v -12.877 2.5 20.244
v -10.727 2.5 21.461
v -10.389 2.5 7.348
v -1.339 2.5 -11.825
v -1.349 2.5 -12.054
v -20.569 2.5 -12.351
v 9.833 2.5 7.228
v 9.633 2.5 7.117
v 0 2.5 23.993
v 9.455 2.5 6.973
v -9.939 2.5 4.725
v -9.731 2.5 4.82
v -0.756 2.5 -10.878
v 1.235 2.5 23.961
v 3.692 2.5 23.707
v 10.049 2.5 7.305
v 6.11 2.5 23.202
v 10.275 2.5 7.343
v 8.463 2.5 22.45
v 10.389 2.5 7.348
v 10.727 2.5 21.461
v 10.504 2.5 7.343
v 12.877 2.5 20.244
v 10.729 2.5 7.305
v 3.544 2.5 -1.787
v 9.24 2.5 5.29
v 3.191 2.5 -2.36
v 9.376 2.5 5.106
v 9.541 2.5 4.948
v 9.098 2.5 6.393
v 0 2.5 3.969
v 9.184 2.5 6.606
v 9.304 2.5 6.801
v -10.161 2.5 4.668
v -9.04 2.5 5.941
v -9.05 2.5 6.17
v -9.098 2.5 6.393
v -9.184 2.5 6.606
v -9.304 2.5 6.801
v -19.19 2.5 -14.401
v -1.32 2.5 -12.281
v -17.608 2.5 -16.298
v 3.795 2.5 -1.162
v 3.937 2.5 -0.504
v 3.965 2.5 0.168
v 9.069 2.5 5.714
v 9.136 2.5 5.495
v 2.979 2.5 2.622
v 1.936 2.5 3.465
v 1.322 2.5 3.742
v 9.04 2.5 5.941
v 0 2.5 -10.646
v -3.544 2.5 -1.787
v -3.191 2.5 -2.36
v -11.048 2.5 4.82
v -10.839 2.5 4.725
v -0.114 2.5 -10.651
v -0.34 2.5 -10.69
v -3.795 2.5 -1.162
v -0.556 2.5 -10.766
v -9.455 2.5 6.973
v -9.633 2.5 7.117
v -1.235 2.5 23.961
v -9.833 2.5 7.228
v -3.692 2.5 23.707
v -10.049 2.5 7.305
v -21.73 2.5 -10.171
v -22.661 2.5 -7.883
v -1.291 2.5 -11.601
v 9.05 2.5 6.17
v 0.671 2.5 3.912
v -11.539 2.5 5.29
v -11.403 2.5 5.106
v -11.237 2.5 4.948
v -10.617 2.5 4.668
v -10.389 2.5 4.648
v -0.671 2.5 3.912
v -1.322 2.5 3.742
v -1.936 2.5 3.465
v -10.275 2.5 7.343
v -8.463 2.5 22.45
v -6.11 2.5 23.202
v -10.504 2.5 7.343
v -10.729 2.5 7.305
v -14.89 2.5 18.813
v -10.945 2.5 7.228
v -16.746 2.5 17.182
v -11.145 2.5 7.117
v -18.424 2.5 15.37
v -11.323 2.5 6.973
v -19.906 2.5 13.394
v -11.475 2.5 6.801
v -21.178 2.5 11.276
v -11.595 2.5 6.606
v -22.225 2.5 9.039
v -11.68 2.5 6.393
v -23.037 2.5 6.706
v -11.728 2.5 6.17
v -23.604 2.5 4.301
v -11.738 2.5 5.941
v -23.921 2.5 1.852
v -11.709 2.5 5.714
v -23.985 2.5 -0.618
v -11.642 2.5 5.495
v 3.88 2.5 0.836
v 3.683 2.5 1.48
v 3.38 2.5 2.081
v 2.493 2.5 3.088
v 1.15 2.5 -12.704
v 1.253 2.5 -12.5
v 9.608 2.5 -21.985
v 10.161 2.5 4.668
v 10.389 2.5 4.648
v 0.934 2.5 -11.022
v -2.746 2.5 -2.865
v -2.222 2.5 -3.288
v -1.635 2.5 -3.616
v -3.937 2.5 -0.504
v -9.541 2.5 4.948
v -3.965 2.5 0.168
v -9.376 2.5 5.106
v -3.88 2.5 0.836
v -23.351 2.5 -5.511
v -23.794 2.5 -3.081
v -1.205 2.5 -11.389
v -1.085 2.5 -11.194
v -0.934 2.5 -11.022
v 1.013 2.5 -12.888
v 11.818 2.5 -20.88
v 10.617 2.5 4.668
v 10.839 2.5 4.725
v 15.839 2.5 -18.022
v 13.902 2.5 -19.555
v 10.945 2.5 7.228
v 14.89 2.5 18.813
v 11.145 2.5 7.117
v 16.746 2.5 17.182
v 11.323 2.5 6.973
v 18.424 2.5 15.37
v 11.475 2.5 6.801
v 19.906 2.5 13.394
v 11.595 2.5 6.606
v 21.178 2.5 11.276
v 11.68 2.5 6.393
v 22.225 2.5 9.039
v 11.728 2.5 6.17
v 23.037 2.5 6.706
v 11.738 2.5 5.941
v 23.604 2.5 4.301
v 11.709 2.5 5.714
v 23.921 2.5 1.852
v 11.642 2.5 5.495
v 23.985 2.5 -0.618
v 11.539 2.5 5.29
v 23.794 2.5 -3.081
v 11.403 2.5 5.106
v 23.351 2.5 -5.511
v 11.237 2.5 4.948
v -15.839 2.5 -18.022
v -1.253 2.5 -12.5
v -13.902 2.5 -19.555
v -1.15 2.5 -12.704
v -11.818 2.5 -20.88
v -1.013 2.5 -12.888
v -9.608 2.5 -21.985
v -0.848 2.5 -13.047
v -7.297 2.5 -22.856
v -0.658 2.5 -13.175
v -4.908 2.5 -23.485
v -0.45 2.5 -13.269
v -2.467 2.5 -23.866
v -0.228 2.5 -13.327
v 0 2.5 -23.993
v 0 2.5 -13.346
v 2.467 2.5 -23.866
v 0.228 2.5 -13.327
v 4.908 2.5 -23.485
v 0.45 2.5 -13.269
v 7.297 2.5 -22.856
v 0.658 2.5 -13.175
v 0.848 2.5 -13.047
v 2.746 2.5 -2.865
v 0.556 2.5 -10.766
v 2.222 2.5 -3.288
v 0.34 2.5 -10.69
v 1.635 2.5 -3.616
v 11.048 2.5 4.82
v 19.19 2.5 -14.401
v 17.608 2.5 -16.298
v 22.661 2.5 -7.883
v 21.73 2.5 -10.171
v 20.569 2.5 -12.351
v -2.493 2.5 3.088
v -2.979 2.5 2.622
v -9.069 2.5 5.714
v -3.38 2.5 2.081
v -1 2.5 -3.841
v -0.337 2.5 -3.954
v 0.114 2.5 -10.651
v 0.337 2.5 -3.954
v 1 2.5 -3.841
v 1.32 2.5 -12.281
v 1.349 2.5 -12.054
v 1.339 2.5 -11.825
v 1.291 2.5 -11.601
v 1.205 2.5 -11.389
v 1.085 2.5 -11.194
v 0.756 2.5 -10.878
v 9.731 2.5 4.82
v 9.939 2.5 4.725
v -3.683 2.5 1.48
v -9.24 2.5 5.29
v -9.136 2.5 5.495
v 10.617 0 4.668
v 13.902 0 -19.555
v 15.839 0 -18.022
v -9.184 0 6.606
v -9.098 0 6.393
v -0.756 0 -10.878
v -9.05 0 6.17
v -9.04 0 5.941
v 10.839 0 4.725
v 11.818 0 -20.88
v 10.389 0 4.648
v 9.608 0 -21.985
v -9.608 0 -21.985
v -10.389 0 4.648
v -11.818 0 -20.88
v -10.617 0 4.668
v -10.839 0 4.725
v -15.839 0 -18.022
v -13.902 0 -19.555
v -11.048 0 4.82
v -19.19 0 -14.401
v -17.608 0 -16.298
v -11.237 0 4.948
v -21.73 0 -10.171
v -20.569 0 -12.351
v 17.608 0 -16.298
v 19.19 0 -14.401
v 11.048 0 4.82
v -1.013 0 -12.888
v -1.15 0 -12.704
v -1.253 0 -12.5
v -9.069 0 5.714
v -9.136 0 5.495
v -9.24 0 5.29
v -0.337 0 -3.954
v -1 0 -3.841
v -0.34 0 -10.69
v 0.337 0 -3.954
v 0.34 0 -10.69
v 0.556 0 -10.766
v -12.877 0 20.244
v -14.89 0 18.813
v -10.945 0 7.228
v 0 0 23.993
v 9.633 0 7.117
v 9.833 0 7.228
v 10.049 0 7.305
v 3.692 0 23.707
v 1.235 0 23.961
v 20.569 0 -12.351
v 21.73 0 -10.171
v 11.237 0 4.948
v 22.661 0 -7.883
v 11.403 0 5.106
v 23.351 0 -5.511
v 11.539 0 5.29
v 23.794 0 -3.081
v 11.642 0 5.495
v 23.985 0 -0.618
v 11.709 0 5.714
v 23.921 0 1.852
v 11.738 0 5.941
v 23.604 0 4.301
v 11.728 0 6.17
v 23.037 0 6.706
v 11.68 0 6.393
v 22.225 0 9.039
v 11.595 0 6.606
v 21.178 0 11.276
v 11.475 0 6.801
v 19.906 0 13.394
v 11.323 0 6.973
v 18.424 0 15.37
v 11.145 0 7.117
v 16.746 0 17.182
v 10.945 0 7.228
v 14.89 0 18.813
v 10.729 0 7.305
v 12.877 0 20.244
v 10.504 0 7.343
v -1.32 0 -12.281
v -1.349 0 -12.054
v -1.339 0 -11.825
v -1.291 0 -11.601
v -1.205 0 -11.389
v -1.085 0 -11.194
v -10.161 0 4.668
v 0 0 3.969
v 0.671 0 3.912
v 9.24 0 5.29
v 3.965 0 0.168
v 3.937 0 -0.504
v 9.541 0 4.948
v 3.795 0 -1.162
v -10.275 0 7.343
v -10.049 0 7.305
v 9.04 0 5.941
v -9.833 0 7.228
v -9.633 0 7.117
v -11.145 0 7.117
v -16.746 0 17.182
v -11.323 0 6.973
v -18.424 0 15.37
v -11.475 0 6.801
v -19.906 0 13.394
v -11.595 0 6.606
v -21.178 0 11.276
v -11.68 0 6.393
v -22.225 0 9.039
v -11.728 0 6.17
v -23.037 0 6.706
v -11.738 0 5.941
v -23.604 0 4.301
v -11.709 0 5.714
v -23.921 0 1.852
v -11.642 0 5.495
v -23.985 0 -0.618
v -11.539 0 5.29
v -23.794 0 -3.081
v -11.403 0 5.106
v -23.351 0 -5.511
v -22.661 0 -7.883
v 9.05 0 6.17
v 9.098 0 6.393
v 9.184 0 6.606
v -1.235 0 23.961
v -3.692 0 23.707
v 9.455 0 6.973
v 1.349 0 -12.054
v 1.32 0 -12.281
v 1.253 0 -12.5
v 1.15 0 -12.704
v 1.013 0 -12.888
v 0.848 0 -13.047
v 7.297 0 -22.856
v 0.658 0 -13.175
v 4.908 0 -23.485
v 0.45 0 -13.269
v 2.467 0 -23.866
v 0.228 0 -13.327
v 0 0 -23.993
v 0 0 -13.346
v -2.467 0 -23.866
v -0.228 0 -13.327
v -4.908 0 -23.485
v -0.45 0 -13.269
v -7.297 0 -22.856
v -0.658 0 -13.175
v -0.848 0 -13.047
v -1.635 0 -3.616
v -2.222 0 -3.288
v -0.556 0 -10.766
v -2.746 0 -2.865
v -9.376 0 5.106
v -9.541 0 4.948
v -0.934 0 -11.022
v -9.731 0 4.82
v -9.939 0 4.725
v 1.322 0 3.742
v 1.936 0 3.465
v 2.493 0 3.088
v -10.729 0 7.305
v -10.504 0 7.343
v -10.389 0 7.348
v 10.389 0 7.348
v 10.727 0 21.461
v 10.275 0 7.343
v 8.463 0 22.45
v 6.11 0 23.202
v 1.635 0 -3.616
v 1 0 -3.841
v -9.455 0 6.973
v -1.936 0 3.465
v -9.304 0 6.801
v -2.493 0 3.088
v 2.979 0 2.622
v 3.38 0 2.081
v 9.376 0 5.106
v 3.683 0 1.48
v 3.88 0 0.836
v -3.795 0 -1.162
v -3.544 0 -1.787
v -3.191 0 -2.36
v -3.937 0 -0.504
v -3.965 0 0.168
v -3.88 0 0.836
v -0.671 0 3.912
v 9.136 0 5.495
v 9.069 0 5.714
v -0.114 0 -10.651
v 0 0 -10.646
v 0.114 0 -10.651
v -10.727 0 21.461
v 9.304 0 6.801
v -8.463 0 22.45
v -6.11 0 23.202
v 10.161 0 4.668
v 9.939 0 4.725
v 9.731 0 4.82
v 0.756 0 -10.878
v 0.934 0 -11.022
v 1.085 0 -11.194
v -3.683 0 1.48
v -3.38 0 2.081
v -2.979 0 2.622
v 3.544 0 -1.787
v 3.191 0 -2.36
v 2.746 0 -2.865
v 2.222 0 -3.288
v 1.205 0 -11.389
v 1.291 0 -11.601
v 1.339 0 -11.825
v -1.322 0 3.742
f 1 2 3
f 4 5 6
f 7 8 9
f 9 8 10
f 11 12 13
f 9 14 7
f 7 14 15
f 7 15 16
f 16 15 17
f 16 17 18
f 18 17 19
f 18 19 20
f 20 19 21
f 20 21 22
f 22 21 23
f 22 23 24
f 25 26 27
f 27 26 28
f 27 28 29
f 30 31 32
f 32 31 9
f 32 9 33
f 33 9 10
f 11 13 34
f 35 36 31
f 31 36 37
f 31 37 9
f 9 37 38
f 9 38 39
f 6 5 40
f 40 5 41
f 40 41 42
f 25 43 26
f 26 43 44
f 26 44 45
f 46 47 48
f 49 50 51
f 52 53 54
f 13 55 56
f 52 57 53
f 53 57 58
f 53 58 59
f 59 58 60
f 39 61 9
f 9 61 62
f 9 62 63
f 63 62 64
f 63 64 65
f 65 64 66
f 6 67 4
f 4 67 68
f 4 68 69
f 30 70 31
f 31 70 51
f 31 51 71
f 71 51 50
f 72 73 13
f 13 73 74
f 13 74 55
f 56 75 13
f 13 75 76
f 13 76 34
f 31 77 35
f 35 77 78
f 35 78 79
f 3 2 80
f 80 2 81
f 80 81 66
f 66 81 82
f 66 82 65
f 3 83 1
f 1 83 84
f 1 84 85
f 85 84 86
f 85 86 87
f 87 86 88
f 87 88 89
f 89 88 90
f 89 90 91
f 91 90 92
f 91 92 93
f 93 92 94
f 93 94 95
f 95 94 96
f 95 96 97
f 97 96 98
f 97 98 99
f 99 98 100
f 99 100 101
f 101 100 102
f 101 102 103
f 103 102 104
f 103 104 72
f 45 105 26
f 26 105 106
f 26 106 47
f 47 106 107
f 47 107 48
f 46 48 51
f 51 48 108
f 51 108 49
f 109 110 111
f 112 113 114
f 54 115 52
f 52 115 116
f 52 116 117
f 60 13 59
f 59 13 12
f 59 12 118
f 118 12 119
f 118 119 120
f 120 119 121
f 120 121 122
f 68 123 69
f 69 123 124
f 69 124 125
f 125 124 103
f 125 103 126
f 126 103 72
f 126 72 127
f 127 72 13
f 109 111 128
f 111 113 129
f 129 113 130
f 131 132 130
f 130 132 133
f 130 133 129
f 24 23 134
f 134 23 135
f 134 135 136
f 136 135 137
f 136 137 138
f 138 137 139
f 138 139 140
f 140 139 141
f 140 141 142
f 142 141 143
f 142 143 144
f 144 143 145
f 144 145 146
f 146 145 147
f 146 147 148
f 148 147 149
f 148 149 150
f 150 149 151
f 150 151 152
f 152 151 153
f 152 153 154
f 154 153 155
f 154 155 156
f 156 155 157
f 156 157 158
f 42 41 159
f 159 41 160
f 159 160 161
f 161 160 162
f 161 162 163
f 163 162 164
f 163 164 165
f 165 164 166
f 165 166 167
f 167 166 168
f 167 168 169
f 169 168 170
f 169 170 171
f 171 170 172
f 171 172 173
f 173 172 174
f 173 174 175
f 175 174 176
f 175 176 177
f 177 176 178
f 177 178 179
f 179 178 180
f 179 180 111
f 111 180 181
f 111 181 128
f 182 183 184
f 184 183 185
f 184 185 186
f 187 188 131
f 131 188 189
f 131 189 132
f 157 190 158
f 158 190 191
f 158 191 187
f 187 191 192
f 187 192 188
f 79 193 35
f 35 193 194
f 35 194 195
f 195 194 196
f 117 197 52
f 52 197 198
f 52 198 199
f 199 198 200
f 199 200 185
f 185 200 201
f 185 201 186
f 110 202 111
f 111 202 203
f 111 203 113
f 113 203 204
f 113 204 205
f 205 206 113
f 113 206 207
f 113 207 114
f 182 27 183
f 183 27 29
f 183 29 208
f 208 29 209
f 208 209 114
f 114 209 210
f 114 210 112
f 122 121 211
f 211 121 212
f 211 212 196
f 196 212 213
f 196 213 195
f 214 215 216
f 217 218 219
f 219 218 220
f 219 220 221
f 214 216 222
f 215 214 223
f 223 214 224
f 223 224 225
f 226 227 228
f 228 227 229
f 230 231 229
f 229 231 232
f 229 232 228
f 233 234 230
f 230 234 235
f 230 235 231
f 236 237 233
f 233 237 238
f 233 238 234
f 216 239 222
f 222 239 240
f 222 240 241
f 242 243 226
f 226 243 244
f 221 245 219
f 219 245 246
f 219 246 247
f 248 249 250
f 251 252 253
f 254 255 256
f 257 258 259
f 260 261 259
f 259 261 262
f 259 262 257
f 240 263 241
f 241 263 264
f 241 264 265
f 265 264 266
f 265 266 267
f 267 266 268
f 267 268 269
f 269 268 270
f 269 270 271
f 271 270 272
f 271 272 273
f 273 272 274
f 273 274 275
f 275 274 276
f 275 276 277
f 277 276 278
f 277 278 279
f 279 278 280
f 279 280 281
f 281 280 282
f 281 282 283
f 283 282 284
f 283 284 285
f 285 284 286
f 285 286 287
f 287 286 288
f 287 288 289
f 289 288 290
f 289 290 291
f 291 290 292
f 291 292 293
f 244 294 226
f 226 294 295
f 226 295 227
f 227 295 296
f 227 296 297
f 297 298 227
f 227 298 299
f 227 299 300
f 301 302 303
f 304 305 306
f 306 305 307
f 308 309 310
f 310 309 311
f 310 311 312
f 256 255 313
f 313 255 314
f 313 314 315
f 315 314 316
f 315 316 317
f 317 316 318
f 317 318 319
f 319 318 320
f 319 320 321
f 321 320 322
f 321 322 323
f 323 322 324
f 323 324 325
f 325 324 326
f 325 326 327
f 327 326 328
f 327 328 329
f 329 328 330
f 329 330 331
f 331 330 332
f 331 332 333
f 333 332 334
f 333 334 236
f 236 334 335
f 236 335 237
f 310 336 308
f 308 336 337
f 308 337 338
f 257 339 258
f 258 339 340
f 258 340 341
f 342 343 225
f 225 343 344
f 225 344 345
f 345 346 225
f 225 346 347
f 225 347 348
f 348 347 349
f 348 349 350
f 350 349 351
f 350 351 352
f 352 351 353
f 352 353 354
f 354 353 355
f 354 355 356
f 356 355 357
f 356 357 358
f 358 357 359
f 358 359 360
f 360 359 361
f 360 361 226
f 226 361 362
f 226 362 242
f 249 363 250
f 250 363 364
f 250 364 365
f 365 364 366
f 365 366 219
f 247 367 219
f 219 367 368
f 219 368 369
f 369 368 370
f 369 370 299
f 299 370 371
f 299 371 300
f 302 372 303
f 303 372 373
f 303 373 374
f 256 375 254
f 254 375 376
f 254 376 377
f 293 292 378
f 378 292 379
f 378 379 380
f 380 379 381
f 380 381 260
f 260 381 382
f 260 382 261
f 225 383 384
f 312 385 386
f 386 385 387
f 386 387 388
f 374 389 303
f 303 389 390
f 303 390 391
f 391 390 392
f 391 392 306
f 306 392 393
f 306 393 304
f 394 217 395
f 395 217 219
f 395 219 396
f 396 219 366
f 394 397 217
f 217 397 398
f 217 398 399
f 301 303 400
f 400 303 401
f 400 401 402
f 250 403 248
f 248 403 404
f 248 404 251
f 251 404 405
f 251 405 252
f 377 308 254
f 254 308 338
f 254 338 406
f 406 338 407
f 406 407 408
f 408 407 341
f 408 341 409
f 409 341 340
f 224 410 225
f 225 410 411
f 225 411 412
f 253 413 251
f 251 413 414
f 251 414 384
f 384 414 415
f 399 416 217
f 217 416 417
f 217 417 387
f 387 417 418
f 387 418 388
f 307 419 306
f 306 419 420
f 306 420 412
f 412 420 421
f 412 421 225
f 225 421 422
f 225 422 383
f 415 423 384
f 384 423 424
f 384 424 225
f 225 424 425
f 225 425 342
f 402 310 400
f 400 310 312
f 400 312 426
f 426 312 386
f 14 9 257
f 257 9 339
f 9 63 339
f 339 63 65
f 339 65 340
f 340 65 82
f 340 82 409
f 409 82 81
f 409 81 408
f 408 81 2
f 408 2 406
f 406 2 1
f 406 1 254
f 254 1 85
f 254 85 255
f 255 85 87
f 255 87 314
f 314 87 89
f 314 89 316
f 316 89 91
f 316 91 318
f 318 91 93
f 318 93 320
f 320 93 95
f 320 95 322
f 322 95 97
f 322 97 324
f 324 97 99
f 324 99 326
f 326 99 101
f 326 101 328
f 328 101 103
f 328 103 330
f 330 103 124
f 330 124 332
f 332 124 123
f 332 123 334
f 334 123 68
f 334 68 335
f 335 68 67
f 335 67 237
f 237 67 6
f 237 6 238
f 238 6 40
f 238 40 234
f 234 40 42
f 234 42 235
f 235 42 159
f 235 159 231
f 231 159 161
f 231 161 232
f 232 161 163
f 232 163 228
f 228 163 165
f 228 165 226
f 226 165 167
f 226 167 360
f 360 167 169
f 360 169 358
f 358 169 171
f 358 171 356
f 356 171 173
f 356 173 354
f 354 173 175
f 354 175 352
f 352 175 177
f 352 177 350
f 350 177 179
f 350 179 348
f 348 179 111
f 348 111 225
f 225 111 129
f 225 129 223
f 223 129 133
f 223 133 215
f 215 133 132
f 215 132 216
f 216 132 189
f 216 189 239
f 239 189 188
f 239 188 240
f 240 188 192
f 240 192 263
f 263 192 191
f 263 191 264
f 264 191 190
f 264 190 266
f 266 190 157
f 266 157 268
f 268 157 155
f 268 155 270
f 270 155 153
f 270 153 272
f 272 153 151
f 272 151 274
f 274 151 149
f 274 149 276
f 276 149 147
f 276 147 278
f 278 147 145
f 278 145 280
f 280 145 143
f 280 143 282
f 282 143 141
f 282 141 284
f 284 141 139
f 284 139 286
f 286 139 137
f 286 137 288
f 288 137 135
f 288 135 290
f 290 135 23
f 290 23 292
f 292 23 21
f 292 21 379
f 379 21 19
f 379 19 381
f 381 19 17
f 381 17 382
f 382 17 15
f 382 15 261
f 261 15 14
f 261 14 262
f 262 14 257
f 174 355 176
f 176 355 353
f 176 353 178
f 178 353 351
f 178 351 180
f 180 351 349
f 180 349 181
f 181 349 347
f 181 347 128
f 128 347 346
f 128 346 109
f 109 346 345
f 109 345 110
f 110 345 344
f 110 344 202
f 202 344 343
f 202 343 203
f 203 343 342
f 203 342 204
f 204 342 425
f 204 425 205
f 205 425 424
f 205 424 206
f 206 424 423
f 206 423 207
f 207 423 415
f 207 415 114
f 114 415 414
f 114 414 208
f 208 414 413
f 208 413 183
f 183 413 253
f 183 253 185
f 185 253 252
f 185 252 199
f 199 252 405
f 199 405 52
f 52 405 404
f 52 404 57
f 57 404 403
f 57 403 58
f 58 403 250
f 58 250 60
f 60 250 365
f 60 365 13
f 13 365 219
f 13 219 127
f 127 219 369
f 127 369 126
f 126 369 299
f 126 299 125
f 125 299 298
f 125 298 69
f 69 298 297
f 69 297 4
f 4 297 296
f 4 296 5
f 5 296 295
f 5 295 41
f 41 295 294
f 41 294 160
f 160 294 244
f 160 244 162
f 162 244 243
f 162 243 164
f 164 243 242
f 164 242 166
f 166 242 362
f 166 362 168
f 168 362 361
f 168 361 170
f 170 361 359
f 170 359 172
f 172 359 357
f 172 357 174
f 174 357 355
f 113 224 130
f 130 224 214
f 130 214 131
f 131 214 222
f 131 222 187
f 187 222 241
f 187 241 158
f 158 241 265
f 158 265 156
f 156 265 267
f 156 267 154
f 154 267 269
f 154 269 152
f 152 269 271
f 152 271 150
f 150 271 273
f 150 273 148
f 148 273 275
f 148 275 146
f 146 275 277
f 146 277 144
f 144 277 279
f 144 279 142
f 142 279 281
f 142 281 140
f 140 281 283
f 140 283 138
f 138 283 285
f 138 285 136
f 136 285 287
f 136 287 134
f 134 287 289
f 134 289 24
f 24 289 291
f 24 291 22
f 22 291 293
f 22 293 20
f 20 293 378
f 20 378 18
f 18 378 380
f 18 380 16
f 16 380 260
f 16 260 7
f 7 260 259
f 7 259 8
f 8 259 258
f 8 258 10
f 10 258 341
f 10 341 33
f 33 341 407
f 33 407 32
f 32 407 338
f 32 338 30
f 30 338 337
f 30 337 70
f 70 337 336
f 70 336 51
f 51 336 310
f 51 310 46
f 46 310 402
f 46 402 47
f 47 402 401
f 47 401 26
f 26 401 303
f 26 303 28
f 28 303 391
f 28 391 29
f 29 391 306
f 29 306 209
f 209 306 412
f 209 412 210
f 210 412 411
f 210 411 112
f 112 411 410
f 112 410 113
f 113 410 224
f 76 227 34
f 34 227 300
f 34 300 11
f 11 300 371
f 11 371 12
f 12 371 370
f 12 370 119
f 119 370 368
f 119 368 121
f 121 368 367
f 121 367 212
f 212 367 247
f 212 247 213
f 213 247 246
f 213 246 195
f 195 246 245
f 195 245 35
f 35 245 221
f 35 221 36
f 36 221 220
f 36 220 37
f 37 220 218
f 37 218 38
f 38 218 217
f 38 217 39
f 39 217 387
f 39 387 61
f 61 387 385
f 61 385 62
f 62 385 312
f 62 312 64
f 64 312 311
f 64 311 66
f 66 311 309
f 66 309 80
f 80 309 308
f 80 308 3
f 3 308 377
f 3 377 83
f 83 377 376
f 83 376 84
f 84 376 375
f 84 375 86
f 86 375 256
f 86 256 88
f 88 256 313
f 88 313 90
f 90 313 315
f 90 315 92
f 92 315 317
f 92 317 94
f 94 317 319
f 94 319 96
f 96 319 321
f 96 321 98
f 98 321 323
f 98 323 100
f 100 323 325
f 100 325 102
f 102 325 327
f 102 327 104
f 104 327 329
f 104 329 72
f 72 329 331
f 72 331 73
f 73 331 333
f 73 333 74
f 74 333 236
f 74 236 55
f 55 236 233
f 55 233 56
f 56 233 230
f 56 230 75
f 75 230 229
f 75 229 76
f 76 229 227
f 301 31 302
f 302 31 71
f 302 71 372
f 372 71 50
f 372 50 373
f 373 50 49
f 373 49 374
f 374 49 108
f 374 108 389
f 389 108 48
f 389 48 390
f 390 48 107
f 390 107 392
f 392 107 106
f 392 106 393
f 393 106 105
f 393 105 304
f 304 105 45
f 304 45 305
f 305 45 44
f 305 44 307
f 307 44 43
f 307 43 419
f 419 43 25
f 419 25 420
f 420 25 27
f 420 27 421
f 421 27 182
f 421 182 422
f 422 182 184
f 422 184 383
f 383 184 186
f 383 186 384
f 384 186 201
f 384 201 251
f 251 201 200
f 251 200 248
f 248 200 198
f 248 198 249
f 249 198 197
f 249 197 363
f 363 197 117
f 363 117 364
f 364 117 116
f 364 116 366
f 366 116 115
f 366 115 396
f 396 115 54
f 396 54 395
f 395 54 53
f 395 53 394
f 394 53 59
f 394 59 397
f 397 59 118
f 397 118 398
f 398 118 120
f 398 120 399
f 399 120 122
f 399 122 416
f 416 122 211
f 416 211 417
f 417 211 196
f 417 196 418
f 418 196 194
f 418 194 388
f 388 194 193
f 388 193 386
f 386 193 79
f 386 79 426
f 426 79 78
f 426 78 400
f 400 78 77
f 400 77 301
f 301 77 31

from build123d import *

# Parameters (mm, degrees)
SKETCH1_R           = 23.99268
SKETCH1_R_2         = 1.35
BOSS_EXTRUDE1_DEPTH = 2.5
SKETCH4_R           = 3.96875
CUT_EXTRUDE3_DEPTH  = 3.5


with BuildPart() as part:
    # Sketch1 → Boss-Extrude1 (new body)
    with BuildSketch(Plane(origin=(0, 0, 0), x_dir=(1, 0, 0), z_dir=(0, 1, 0))):
        Circle(SKETCH1_R)
        with Locations((0, 11.99634)):
            Circle(SKETCH1_R_2, mode=Mode.SUBTRACT)
        with Locations((10.389135192, -5.99817)):
            Circle(SKETCH1_R_2, mode=Mode.SUBTRACT)
        with Locations((-10.389135192, -5.99817)):
            Circle(SKETCH1_R_2, mode=Mode.SUBTRACT)
    extrude(amount=BOSS_EXTRUDE1_DEPTH)

    # Sketch4 → Cut-Extrude3 (cut, through all)
    with BuildSketch(Plane(origin=(0, 2.5, 0), x_dir=(1, 0, 0), z_dir=(0, 1, 0))):
        Circle(SKETCH4_R)
    extrude(amount=-CUT_EXTRUDE3_DEPTH, mode=Mode.SUBTRACT)


solid = part.part
